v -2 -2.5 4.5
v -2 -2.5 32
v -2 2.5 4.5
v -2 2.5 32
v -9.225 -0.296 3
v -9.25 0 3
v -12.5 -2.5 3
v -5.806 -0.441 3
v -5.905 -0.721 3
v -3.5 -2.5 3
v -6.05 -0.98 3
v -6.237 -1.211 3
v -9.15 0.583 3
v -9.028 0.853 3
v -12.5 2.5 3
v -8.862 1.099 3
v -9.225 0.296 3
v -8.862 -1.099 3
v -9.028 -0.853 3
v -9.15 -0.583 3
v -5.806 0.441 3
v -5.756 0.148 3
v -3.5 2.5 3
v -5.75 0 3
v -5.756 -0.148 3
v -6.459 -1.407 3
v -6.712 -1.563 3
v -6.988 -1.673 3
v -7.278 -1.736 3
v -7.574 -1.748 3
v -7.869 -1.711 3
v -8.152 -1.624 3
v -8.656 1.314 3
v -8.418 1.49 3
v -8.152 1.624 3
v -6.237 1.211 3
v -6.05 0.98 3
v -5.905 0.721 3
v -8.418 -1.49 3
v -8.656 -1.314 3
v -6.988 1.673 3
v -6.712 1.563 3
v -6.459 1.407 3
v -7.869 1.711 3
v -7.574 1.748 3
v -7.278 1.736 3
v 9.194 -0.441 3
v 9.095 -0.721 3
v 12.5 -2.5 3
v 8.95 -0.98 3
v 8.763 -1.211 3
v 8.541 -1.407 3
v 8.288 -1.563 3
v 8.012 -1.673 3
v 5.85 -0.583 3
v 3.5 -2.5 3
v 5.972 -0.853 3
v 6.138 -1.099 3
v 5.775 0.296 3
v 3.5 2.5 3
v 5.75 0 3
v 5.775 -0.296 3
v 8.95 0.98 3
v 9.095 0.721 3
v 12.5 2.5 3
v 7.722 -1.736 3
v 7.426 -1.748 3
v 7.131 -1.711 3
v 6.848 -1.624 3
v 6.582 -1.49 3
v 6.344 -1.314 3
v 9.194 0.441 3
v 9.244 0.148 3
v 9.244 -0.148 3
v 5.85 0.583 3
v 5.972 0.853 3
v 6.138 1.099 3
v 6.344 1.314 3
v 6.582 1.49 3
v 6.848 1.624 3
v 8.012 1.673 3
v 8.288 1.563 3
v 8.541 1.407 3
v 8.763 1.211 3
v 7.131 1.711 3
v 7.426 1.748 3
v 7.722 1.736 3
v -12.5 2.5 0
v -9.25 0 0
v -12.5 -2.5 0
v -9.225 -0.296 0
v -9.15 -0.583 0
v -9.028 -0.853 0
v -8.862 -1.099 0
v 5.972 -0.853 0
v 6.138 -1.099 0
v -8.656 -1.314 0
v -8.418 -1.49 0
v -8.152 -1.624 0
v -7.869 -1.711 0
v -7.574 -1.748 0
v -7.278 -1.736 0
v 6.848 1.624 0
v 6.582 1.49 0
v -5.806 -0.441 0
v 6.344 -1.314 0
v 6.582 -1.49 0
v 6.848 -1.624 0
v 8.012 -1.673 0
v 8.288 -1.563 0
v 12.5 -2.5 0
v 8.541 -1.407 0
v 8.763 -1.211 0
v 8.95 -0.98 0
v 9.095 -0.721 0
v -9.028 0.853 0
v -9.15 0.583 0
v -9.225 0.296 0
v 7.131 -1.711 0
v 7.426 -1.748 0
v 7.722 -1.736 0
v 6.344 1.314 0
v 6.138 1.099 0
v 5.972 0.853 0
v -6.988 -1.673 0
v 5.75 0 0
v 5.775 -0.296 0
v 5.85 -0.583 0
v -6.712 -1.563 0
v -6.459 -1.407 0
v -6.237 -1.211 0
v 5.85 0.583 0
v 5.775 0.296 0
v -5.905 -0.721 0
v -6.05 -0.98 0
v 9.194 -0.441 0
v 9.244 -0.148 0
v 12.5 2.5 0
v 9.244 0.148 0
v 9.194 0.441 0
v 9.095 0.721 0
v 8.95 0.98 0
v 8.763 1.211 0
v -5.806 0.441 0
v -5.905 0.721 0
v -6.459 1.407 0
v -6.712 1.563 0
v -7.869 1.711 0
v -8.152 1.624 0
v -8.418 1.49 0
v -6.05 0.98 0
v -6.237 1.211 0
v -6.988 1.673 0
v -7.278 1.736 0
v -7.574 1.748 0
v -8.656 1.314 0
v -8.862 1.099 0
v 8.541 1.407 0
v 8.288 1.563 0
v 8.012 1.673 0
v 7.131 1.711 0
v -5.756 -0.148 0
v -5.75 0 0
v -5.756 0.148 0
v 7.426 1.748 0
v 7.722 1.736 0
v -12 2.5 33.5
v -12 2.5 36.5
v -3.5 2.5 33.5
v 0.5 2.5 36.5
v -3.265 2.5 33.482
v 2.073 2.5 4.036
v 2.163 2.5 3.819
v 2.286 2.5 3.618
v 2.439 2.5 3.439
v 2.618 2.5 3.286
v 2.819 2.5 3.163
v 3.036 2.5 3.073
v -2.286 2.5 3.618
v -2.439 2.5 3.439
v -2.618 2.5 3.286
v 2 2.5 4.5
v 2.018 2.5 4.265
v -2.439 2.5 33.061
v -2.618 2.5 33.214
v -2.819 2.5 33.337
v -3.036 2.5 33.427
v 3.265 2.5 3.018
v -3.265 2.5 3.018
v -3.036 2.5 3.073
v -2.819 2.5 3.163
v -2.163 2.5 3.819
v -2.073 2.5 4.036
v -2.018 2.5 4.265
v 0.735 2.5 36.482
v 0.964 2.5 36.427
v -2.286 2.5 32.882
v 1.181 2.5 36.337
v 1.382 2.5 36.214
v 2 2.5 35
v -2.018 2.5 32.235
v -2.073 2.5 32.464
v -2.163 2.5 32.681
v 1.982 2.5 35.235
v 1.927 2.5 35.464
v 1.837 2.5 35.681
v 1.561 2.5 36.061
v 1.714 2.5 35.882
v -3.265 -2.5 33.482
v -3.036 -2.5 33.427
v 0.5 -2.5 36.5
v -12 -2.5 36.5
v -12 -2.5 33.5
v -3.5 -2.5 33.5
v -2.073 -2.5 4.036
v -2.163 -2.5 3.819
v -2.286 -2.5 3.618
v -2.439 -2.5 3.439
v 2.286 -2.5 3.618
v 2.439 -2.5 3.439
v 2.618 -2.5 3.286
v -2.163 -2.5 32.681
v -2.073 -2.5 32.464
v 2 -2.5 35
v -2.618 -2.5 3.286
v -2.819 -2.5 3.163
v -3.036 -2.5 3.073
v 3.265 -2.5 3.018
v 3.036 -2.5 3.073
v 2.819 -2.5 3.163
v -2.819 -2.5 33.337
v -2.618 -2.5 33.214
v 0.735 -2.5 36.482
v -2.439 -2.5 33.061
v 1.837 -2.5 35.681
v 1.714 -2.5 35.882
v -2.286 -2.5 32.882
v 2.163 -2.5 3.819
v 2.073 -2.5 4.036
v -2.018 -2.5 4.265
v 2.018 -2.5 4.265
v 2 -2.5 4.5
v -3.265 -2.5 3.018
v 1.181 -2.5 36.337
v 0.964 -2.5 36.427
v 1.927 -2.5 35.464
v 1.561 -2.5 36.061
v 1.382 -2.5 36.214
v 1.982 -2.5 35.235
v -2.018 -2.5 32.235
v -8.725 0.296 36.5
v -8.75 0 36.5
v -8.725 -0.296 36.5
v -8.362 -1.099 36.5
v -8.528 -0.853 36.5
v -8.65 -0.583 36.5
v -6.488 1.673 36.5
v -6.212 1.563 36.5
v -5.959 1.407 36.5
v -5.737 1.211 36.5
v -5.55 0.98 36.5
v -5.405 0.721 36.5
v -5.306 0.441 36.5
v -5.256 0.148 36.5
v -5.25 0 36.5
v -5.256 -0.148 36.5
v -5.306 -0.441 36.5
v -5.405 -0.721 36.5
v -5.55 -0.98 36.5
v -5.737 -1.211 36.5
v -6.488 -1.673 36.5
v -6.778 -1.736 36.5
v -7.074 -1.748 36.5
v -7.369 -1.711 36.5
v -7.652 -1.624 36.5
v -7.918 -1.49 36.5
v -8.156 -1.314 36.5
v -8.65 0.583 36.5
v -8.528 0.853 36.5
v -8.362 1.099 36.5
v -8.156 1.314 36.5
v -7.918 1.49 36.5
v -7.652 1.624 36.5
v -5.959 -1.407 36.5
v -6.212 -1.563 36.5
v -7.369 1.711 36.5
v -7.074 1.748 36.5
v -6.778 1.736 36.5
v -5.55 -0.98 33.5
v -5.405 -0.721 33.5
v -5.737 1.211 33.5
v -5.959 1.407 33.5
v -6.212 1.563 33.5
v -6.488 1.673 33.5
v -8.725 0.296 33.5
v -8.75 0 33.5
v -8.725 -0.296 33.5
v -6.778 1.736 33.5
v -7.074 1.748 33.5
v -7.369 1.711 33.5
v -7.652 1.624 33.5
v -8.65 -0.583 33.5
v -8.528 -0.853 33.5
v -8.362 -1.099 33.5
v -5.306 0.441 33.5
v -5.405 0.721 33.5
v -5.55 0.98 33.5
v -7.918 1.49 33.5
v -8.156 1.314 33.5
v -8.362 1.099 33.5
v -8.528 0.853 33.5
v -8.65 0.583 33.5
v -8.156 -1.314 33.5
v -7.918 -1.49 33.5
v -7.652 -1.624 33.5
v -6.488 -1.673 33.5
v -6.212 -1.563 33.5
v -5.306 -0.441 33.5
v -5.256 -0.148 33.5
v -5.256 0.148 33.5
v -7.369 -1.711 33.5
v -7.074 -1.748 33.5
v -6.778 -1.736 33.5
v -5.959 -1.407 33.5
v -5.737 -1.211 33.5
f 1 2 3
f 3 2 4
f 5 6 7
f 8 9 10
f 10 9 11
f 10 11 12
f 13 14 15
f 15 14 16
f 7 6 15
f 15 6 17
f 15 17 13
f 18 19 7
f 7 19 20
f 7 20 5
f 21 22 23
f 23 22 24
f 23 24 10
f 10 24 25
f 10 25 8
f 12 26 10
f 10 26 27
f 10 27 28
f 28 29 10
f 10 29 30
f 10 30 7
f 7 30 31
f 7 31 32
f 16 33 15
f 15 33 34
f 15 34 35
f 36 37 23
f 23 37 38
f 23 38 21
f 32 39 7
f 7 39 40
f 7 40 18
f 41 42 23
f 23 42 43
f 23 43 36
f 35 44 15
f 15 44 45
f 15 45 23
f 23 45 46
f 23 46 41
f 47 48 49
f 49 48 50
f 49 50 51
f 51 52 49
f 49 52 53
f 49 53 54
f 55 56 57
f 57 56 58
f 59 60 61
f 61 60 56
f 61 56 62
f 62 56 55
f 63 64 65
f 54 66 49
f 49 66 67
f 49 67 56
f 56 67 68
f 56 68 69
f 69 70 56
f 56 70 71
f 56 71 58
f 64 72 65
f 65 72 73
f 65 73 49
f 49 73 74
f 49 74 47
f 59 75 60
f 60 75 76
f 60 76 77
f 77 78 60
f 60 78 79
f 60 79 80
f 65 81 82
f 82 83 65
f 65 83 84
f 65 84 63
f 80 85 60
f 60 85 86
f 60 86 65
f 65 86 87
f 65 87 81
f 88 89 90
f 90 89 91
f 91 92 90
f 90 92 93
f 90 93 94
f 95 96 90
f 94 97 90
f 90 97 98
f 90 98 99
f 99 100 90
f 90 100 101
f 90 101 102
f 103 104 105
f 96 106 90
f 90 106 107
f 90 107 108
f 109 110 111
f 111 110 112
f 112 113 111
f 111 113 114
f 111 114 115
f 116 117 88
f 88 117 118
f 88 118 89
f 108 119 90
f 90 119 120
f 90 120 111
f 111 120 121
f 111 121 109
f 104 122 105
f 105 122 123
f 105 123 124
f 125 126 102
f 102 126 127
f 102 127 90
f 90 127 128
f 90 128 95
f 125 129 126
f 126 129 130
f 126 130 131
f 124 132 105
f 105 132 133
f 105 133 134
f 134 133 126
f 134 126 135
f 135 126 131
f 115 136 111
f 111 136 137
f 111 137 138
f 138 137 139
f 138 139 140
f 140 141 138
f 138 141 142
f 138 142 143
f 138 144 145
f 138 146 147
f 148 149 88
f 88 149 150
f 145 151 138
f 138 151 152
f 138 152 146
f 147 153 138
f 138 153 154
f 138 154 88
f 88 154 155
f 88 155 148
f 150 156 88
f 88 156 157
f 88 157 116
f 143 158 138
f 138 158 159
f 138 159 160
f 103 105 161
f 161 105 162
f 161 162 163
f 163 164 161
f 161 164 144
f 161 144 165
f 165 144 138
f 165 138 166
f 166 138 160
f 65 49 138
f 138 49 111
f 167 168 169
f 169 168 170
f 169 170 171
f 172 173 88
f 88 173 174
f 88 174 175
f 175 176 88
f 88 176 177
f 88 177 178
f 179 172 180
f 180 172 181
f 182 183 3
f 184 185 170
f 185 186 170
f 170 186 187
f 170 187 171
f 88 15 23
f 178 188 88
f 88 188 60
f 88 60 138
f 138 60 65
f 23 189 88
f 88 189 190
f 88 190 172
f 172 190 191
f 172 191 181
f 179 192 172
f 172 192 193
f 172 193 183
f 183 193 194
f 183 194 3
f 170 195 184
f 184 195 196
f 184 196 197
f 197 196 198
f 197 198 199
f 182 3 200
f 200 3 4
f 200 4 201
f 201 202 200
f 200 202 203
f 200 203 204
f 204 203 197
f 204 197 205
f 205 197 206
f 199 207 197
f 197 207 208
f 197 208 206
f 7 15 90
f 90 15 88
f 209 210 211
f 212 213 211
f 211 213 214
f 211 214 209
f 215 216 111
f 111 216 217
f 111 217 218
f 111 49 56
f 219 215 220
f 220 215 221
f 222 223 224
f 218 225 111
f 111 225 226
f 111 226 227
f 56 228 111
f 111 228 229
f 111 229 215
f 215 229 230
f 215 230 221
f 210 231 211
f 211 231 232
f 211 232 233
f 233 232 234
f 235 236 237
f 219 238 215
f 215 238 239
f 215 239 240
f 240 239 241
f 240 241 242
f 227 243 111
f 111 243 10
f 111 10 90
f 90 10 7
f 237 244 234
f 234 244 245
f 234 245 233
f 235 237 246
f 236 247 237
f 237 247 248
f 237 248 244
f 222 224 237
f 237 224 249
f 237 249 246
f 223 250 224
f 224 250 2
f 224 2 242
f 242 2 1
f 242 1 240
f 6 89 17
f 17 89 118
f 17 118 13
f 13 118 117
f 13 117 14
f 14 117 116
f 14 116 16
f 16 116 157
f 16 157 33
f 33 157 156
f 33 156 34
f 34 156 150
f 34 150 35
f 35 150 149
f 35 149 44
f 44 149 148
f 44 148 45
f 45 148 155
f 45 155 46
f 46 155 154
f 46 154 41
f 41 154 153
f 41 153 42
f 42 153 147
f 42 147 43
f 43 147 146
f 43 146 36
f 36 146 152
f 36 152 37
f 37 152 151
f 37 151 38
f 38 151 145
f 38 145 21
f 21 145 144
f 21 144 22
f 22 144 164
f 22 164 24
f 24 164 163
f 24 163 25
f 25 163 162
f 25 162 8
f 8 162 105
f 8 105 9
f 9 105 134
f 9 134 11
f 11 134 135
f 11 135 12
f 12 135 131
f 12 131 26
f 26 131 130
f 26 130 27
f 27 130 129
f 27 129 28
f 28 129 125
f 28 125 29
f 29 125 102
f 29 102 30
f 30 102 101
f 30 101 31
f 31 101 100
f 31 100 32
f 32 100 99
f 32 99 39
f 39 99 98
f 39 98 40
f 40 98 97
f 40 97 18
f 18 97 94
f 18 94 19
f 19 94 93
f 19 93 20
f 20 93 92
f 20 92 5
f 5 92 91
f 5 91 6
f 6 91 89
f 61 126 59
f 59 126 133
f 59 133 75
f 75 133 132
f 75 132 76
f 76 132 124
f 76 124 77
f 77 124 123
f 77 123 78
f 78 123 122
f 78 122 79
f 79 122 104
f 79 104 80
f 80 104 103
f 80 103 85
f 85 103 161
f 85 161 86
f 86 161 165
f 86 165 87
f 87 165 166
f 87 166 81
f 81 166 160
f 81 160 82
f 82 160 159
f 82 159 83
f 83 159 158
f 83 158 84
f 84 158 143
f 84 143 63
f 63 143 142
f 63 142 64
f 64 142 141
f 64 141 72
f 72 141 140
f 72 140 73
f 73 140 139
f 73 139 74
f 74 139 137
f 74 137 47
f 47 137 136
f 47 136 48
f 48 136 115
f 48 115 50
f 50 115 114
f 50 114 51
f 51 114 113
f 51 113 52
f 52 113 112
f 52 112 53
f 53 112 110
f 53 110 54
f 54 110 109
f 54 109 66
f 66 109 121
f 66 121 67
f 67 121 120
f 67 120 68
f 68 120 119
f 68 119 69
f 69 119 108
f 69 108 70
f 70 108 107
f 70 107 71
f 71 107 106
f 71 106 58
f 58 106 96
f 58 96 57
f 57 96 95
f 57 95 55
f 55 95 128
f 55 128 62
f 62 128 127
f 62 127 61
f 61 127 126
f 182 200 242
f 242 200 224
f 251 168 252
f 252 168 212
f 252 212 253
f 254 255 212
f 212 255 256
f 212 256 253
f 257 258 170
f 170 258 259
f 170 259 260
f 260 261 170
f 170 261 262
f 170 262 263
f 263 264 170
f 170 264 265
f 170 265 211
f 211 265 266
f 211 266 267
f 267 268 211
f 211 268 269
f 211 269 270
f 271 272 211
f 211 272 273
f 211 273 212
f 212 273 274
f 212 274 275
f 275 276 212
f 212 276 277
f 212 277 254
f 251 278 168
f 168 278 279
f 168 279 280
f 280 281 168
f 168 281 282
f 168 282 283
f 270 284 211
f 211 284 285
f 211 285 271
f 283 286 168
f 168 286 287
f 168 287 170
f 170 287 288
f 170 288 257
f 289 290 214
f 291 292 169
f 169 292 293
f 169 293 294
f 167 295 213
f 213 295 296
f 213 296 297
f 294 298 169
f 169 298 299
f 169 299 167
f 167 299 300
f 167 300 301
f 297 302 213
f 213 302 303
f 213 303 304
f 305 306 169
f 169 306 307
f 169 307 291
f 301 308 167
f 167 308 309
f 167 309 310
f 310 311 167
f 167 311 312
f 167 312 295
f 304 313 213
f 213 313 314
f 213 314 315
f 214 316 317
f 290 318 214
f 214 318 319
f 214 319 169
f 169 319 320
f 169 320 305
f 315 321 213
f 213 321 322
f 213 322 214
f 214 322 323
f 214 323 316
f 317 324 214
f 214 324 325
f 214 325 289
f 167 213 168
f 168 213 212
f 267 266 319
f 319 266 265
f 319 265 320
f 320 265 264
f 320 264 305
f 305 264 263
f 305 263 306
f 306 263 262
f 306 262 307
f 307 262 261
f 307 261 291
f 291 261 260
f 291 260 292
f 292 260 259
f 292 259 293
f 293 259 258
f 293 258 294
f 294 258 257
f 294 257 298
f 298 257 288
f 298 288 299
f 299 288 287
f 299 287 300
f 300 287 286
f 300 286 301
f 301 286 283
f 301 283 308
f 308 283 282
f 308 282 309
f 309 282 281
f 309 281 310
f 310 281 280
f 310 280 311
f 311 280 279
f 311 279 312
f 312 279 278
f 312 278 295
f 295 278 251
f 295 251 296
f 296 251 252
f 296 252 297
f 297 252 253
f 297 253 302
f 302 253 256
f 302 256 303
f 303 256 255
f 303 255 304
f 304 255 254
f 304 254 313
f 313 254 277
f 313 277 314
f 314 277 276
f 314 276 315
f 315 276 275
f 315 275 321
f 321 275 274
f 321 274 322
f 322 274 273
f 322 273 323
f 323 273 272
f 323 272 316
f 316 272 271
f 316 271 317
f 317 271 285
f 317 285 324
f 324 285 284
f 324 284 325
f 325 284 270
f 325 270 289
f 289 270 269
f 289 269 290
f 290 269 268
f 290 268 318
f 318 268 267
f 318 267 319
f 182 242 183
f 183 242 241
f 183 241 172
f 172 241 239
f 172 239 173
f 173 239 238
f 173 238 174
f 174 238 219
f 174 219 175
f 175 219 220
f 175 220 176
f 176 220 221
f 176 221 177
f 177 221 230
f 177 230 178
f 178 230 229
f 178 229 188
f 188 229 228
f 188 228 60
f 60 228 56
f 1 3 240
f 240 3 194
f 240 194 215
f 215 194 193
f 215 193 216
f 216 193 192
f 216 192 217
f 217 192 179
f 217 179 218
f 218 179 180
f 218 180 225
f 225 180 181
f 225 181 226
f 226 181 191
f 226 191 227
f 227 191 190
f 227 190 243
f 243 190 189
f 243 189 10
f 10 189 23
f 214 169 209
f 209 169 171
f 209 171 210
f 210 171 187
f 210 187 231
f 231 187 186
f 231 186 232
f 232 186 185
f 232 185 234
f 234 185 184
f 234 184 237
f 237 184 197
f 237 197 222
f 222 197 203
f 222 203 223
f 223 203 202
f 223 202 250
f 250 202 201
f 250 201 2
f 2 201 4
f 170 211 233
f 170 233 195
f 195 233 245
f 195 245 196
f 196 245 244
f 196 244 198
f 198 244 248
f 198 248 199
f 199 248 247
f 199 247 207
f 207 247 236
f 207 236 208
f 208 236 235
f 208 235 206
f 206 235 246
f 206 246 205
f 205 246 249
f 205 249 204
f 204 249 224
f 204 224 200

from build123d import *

# Parameters (mm, degrees)
SKETCH1_W           = 25
SKETCH1_H           = 5
SKETCH1_R           = 1.75
BOSS_EXTRUDE1_DEPTH = 3
SKETCH2_W           = 4
SKETCH2_H           = 5
BOSS_EXTRUDE2_DEPTH = 33.5
SKETCH3_W           = 3
SKETCH3_H           = 5
BOSS_EXTRUDE3_DEPTH = 10
SKETCH4_R           = 1.75
CUT_EXTRUDE1_DEPTH  = 10
FILLET1_R           = 1.5


with BuildPart() as part:
    # Sketch1 → Boss-Extrude1 (new body)
    with BuildSketch(Plane.XY):
        Rectangle(SKETCH1_W, SKETCH1_H)
        with Locations((-7.5, 0)):
            Circle(SKETCH1_R, mode=Mode.SUBTRACT)
        with Locations(Location((7.5, 0, 0), (0, 0, 180))):
            Circle(SKETCH1_R, mode=Mode.SUBTRACT)
    extrude(amount=BOSS_EXTRUDE1_DEPTH)

    # Sketch2 → Boss-Extrude2 (add)
    with BuildSketch(Plane.XY.offset(3)):
        Rectangle(SKETCH2_W, SKETCH2_H)
    extrude(amount=BOSS_EXTRUDE2_DEPTH)

    # Sketch3 → Boss-Extrude3 (add)
    with BuildSketch(Plane.ZY.offset(2)):
        with Locations((35, 0)):
            Rectangle(SKETCH3_W, SKETCH3_H)
    extrude(amount=BOSS_EXTRUDE3_DEPTH)

    # Sketch4 → Cut-Extrude1 (cut)
    with BuildSketch(Plane(origin=(0, 0, 33.5), x_dir=(-1, 0, 0), z_dir=(0, 0, -1))):
        with Locations((7, 0)):
            Circle(SKETCH4_R)
    extrude(amount=-CUT_EXTRUDE1_DEPTH, mode=Mode.SUBTRACT)

    # Fillet1
    fillet1_edges = [part.edges().sort_by_distance(p)[0] for p in [
        (-2, 0, 3),
        (2, 0, 3),
        (2, 0, 36.5),
        (-2, 0, 33.5),
    ]]
    fillet(fillet1_edges, radius=FILLET1_R)


solid = part.part
